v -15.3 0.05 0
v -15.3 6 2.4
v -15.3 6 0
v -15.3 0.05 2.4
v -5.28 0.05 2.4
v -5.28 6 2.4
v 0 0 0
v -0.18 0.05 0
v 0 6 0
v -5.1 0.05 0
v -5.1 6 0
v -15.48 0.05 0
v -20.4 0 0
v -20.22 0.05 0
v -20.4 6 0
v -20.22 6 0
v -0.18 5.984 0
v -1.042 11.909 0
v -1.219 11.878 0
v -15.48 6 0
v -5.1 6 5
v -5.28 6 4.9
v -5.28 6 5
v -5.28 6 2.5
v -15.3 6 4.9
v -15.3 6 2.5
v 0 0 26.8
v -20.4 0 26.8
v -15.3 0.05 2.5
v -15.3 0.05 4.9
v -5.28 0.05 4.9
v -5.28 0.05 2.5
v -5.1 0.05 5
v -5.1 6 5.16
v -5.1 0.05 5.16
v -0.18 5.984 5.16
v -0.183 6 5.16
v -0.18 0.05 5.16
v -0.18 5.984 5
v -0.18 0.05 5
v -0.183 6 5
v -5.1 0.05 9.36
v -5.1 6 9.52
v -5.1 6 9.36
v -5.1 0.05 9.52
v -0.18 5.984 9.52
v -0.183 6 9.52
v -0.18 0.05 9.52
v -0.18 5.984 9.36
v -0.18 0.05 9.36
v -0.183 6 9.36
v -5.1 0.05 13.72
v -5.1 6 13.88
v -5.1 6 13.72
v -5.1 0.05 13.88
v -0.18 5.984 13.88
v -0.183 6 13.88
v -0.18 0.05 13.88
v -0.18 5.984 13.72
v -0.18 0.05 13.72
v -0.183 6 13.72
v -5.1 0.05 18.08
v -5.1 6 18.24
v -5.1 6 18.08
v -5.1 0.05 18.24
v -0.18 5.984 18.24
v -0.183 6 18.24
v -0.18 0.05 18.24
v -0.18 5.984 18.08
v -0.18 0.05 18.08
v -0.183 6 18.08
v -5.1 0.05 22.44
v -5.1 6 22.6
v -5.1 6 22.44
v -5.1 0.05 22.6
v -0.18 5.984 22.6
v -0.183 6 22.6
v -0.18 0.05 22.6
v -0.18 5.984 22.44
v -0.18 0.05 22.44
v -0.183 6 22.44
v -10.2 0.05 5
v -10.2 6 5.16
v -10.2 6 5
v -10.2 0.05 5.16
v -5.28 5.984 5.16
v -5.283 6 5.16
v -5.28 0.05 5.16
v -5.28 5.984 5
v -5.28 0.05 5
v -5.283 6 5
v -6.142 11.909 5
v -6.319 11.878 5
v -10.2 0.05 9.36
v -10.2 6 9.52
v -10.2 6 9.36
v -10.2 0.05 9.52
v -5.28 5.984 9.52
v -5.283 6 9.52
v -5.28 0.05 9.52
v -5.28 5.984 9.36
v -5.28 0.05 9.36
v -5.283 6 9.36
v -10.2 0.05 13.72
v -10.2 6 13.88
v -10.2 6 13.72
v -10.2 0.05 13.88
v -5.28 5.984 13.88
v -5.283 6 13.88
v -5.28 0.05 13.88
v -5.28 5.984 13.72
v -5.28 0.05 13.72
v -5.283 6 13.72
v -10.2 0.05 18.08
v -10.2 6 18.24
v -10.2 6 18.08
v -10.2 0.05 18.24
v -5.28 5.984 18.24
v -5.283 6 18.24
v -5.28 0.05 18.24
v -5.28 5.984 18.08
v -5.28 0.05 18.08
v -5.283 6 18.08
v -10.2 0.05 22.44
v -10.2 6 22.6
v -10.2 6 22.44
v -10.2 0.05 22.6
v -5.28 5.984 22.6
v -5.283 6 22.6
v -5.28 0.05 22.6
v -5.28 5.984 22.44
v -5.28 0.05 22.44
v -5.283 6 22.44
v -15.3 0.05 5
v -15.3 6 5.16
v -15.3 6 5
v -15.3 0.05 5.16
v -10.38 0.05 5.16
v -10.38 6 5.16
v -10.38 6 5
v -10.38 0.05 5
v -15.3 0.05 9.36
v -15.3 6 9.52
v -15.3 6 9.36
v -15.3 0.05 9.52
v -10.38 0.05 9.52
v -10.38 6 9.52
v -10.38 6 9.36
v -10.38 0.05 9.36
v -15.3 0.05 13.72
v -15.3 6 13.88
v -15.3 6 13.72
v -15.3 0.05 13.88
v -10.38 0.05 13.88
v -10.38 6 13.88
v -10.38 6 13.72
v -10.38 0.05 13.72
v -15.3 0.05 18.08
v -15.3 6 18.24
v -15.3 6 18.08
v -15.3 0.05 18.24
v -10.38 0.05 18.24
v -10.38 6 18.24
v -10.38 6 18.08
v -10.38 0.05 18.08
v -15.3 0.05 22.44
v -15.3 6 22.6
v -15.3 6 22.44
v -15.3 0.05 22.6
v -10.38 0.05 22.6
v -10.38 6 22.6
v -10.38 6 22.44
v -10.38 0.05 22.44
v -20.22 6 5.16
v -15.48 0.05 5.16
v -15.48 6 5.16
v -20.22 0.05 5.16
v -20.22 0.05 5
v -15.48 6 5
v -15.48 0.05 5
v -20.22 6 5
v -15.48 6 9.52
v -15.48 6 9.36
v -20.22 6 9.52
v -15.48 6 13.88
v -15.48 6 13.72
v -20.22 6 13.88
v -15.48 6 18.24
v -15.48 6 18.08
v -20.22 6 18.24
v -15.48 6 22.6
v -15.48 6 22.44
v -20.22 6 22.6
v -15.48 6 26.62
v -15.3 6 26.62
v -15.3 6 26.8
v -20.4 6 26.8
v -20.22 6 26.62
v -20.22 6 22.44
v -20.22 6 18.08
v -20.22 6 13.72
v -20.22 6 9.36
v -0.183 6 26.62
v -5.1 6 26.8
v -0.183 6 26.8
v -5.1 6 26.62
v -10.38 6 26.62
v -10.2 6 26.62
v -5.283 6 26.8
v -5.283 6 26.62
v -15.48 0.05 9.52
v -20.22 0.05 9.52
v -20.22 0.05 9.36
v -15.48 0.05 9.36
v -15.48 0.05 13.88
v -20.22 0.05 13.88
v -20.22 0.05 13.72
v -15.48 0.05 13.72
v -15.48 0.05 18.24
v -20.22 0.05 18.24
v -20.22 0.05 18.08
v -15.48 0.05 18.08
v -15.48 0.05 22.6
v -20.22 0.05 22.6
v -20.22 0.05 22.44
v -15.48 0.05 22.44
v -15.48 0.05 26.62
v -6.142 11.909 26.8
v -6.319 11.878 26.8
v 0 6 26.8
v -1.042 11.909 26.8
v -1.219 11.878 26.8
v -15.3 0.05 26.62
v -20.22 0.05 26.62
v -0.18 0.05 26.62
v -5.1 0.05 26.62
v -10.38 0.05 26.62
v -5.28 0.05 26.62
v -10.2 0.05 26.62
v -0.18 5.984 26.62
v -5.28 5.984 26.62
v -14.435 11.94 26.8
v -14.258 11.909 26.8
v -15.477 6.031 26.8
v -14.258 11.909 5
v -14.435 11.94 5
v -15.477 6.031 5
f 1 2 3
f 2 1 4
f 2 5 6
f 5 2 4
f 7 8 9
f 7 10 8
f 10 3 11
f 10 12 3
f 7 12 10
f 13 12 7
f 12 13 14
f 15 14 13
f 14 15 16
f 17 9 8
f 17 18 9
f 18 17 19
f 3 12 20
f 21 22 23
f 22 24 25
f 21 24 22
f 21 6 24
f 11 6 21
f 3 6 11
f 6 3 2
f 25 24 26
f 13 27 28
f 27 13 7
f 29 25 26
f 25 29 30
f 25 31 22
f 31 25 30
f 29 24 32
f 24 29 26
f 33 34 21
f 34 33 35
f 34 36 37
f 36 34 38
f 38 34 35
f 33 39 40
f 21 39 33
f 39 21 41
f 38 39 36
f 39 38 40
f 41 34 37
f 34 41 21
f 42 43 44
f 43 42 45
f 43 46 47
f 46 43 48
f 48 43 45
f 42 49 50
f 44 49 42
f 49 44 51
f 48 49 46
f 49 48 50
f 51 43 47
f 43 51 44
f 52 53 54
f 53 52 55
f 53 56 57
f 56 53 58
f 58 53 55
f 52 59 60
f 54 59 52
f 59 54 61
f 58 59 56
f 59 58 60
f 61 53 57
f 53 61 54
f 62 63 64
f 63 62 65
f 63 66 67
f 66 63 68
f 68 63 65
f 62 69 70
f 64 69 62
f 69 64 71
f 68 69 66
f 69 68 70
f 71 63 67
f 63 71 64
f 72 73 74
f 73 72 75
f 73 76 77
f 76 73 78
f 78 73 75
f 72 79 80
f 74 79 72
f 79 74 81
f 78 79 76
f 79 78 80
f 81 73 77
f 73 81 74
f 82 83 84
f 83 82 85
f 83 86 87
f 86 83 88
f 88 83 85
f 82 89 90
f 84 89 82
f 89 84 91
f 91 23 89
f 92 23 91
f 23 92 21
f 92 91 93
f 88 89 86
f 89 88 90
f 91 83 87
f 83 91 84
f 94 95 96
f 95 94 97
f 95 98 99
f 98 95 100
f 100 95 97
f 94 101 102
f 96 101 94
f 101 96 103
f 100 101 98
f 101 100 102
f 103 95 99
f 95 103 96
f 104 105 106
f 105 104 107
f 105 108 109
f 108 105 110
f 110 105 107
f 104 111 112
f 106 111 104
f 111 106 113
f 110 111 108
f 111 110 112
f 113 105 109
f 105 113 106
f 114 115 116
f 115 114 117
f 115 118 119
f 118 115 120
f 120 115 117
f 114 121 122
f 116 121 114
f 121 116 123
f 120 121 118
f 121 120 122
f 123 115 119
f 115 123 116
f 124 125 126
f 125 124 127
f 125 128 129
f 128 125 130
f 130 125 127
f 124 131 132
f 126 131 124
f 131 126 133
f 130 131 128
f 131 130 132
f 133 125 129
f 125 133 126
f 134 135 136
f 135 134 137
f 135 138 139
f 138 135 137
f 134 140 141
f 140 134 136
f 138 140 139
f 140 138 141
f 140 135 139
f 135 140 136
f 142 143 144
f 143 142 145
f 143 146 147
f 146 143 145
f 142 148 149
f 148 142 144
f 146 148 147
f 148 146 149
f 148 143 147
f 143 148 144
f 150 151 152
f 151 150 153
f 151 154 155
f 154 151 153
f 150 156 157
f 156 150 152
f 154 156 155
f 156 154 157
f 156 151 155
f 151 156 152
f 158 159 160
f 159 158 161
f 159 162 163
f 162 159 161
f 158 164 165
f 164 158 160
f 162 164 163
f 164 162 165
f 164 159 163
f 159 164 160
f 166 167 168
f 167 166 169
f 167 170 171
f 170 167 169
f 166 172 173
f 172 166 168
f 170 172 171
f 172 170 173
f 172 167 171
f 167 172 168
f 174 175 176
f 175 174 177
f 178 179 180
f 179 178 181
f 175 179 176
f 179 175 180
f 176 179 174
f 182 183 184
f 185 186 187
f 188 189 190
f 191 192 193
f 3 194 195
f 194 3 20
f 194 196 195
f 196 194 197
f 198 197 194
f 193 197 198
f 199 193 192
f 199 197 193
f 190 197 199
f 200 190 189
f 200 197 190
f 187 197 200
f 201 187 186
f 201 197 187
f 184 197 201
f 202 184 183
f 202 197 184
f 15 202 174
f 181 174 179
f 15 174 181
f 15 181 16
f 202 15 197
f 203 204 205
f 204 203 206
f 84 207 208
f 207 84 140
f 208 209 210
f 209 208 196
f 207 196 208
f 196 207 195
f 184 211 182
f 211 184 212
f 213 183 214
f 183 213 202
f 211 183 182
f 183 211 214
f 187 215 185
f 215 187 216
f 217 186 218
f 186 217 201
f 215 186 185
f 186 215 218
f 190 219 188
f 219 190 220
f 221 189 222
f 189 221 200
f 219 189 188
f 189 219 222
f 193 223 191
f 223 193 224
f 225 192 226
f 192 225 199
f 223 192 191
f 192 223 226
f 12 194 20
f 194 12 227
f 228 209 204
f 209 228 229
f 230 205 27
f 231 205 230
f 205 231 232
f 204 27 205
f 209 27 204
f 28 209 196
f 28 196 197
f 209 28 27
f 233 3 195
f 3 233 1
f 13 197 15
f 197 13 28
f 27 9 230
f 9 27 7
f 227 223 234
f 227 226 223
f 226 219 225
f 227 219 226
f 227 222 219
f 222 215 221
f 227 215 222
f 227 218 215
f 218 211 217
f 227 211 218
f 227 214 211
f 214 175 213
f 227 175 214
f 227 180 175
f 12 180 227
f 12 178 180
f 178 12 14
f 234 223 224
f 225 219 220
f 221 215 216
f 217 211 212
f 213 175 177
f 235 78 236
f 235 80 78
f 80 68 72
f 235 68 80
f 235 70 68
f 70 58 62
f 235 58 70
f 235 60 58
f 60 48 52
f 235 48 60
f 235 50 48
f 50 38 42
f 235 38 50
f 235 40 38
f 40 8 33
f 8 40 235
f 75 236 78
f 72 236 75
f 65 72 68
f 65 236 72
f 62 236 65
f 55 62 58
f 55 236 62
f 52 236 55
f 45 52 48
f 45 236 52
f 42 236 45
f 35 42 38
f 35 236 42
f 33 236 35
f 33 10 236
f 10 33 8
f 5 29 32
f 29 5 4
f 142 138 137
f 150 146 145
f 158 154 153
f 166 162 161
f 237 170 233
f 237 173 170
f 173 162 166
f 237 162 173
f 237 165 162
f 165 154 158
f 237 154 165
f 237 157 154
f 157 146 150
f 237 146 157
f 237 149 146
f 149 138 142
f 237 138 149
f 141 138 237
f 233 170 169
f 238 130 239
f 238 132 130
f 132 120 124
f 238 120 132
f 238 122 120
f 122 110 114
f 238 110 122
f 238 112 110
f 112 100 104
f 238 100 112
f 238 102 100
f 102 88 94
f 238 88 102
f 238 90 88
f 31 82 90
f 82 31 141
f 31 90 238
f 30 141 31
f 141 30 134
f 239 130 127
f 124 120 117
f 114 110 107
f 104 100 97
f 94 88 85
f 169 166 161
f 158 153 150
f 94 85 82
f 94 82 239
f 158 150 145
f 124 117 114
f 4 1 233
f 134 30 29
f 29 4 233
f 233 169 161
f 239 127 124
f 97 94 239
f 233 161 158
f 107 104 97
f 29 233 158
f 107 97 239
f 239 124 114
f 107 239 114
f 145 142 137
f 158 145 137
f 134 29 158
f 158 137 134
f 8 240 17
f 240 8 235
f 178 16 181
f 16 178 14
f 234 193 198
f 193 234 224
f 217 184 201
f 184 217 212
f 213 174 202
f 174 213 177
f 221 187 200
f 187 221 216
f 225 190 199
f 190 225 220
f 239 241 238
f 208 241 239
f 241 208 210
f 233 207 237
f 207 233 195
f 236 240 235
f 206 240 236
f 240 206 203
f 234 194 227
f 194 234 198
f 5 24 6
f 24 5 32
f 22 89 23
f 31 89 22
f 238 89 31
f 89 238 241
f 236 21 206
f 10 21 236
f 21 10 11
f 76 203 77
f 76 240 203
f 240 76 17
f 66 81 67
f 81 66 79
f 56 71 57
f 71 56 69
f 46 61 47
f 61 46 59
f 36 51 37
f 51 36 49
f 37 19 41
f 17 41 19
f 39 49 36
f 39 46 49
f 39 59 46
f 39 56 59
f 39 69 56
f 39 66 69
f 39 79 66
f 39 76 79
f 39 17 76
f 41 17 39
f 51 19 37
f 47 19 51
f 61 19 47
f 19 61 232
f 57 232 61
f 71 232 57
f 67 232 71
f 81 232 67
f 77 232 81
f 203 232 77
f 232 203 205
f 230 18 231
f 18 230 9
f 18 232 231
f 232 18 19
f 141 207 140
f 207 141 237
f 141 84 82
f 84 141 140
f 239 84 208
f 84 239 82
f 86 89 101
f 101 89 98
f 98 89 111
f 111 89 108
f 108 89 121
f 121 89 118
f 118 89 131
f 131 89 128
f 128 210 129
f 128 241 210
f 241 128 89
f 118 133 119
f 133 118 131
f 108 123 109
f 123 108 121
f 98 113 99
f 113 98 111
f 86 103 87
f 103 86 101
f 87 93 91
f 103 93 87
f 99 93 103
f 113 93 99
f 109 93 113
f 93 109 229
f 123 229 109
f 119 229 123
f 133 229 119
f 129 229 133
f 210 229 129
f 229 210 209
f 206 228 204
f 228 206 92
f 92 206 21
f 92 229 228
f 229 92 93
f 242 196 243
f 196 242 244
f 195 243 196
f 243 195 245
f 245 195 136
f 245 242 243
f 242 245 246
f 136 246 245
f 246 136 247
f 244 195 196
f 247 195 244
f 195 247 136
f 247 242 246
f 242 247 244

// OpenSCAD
module drawer_column(num_drawers, drawer_width, height, drawer_depth, spacing) {
    drawer_height = height / num_drawers - spacing;
    for (i = [0 : num_drawers - 1]) {
        translate([0, 0, i * (drawer_height + spacing)]) {
            cube([drawer_width, drawer_depth, drawer_height]);
        }
    }
}

module szafa_biuro() {
    grubosc_plyty = 0.18;

    szafa_w = 20.399998;
    szafa_h = 26.8;
    szafa_d = 6.;

    plecowka_d = 0.05;
    inner_d = szafa_d;
    drawer_w = szafa_w / 4 - grubosc_plyty; // grubosc_plyty odjęta przy każdej szufladzie
    drawers_h = 5;
    scale([-1., 1., 1.]) {
        // plecówka
        cube([szafa_w, plecowka_d, szafa_h]);
        // lewa
        cube([grubosc_plyty, szafa_d, szafa_h]);
        // prawa
        translate([szafa_w - grubosc_plyty, 0, 0]) {
            cube([grubosc_plyty, szafa_d, szafa_h]);
        }
        // góra
        translate([0, 0, szafa_h - grubosc_plyty]) {
            cube([szafa_w, szafa_d, grubosc_plyty]);
        }
        // szuflady
        echo(str("szafa_w = ", szafa_w));
        translate([szafa_w / 4, 0, 0]) {
            drawer_column(num_drawers = 2, drawer_width = szafa_w / 2, height = drawers_h, drawer_depth = inner_d, spacing = 0.1);
        }
        // półki lewe
        for (i = [0 : 1]) {
            translate([grubosc_plyty + i * (grubosc_plyty + drawer_w), 0, drawers_h]) {
                // magic spacing to make it look like shelves
                drawer_column(num_drawers = 5, drawer_width = drawer_w, height = szafa_h - drawers_h, drawer_depth = inner_d, spacing = 4.2);
            }
        }
        // lewy pionowy środek półek
        translate([szafa_w / 4, 0, 0]) {
            cube([grubosc_plyty, inner_d, szafa_h]);
        }
        translate([0, szafa_d, 0]) {
            rotate([0, 0, -10]) {
                cube([grubosc_plyty, inner_d, szafa_h]);
            }
        }
        //---
        // pionowy środek
        translate([szafa_w / 2, 0, drawers_h]) {
            cube([grubosc_plyty, inner_d, szafa_h - drawers_h]);
        }
        translate([szafa_w / 4, szafa_d, drawers_h]) {
            rotate([0, 0, -10]) {
                cube([grubosc_plyty, inner_d, szafa_h - drawers_h]);
            }
        }
        translate([3 * szafa_w / 4, szafa_d, drawers_h]) {
            rotate([0, 0, 10]) {
                cube([grubosc_plyty, inner_d, szafa_h - drawers_h]);
            }
        }
        //---
        // półki prawe
        translate([szafa_w / 2, 0, 0]) {
            for (i = [0 : 1]) {
                translate([grubosc_plyty + i * (grubosc_plyty + drawer_w), 0, drawers_h]) {
                    // magic spacing to make it look like shelves
                    drawer_column(num_drawers = 5, drawer_width = drawer_w, height = szafa_h - drawers_h, drawer_depth = inner_d, spacing = 4.2);
                }
            }
            // prawy pionowy środek półek
            translate([szafa_w / 4, 0, 0]) {
                cube([grubosc_plyty, inner_d, szafa_h]);
            }
        }
// without doors for a walkway
//        translate([szafa_w - grubosc_plyty, szafa_d, 0]) {
//            rotate([0, 0, 10]) {
//                cube([grubosc_plyty, inner_d, szafa_h]);
//            }
//        }
//        translate([7 * szafa_w / 8, 1.2 * szafa_d, szafa_h/2]) {
//            rotate([0, 90, 0]) {
//                scale([0.1, 0.1, 0.1]) {
//                    text("brak drzwi ↓");
//                }
//            }
//        }
    }
}

szafa_biuro();
